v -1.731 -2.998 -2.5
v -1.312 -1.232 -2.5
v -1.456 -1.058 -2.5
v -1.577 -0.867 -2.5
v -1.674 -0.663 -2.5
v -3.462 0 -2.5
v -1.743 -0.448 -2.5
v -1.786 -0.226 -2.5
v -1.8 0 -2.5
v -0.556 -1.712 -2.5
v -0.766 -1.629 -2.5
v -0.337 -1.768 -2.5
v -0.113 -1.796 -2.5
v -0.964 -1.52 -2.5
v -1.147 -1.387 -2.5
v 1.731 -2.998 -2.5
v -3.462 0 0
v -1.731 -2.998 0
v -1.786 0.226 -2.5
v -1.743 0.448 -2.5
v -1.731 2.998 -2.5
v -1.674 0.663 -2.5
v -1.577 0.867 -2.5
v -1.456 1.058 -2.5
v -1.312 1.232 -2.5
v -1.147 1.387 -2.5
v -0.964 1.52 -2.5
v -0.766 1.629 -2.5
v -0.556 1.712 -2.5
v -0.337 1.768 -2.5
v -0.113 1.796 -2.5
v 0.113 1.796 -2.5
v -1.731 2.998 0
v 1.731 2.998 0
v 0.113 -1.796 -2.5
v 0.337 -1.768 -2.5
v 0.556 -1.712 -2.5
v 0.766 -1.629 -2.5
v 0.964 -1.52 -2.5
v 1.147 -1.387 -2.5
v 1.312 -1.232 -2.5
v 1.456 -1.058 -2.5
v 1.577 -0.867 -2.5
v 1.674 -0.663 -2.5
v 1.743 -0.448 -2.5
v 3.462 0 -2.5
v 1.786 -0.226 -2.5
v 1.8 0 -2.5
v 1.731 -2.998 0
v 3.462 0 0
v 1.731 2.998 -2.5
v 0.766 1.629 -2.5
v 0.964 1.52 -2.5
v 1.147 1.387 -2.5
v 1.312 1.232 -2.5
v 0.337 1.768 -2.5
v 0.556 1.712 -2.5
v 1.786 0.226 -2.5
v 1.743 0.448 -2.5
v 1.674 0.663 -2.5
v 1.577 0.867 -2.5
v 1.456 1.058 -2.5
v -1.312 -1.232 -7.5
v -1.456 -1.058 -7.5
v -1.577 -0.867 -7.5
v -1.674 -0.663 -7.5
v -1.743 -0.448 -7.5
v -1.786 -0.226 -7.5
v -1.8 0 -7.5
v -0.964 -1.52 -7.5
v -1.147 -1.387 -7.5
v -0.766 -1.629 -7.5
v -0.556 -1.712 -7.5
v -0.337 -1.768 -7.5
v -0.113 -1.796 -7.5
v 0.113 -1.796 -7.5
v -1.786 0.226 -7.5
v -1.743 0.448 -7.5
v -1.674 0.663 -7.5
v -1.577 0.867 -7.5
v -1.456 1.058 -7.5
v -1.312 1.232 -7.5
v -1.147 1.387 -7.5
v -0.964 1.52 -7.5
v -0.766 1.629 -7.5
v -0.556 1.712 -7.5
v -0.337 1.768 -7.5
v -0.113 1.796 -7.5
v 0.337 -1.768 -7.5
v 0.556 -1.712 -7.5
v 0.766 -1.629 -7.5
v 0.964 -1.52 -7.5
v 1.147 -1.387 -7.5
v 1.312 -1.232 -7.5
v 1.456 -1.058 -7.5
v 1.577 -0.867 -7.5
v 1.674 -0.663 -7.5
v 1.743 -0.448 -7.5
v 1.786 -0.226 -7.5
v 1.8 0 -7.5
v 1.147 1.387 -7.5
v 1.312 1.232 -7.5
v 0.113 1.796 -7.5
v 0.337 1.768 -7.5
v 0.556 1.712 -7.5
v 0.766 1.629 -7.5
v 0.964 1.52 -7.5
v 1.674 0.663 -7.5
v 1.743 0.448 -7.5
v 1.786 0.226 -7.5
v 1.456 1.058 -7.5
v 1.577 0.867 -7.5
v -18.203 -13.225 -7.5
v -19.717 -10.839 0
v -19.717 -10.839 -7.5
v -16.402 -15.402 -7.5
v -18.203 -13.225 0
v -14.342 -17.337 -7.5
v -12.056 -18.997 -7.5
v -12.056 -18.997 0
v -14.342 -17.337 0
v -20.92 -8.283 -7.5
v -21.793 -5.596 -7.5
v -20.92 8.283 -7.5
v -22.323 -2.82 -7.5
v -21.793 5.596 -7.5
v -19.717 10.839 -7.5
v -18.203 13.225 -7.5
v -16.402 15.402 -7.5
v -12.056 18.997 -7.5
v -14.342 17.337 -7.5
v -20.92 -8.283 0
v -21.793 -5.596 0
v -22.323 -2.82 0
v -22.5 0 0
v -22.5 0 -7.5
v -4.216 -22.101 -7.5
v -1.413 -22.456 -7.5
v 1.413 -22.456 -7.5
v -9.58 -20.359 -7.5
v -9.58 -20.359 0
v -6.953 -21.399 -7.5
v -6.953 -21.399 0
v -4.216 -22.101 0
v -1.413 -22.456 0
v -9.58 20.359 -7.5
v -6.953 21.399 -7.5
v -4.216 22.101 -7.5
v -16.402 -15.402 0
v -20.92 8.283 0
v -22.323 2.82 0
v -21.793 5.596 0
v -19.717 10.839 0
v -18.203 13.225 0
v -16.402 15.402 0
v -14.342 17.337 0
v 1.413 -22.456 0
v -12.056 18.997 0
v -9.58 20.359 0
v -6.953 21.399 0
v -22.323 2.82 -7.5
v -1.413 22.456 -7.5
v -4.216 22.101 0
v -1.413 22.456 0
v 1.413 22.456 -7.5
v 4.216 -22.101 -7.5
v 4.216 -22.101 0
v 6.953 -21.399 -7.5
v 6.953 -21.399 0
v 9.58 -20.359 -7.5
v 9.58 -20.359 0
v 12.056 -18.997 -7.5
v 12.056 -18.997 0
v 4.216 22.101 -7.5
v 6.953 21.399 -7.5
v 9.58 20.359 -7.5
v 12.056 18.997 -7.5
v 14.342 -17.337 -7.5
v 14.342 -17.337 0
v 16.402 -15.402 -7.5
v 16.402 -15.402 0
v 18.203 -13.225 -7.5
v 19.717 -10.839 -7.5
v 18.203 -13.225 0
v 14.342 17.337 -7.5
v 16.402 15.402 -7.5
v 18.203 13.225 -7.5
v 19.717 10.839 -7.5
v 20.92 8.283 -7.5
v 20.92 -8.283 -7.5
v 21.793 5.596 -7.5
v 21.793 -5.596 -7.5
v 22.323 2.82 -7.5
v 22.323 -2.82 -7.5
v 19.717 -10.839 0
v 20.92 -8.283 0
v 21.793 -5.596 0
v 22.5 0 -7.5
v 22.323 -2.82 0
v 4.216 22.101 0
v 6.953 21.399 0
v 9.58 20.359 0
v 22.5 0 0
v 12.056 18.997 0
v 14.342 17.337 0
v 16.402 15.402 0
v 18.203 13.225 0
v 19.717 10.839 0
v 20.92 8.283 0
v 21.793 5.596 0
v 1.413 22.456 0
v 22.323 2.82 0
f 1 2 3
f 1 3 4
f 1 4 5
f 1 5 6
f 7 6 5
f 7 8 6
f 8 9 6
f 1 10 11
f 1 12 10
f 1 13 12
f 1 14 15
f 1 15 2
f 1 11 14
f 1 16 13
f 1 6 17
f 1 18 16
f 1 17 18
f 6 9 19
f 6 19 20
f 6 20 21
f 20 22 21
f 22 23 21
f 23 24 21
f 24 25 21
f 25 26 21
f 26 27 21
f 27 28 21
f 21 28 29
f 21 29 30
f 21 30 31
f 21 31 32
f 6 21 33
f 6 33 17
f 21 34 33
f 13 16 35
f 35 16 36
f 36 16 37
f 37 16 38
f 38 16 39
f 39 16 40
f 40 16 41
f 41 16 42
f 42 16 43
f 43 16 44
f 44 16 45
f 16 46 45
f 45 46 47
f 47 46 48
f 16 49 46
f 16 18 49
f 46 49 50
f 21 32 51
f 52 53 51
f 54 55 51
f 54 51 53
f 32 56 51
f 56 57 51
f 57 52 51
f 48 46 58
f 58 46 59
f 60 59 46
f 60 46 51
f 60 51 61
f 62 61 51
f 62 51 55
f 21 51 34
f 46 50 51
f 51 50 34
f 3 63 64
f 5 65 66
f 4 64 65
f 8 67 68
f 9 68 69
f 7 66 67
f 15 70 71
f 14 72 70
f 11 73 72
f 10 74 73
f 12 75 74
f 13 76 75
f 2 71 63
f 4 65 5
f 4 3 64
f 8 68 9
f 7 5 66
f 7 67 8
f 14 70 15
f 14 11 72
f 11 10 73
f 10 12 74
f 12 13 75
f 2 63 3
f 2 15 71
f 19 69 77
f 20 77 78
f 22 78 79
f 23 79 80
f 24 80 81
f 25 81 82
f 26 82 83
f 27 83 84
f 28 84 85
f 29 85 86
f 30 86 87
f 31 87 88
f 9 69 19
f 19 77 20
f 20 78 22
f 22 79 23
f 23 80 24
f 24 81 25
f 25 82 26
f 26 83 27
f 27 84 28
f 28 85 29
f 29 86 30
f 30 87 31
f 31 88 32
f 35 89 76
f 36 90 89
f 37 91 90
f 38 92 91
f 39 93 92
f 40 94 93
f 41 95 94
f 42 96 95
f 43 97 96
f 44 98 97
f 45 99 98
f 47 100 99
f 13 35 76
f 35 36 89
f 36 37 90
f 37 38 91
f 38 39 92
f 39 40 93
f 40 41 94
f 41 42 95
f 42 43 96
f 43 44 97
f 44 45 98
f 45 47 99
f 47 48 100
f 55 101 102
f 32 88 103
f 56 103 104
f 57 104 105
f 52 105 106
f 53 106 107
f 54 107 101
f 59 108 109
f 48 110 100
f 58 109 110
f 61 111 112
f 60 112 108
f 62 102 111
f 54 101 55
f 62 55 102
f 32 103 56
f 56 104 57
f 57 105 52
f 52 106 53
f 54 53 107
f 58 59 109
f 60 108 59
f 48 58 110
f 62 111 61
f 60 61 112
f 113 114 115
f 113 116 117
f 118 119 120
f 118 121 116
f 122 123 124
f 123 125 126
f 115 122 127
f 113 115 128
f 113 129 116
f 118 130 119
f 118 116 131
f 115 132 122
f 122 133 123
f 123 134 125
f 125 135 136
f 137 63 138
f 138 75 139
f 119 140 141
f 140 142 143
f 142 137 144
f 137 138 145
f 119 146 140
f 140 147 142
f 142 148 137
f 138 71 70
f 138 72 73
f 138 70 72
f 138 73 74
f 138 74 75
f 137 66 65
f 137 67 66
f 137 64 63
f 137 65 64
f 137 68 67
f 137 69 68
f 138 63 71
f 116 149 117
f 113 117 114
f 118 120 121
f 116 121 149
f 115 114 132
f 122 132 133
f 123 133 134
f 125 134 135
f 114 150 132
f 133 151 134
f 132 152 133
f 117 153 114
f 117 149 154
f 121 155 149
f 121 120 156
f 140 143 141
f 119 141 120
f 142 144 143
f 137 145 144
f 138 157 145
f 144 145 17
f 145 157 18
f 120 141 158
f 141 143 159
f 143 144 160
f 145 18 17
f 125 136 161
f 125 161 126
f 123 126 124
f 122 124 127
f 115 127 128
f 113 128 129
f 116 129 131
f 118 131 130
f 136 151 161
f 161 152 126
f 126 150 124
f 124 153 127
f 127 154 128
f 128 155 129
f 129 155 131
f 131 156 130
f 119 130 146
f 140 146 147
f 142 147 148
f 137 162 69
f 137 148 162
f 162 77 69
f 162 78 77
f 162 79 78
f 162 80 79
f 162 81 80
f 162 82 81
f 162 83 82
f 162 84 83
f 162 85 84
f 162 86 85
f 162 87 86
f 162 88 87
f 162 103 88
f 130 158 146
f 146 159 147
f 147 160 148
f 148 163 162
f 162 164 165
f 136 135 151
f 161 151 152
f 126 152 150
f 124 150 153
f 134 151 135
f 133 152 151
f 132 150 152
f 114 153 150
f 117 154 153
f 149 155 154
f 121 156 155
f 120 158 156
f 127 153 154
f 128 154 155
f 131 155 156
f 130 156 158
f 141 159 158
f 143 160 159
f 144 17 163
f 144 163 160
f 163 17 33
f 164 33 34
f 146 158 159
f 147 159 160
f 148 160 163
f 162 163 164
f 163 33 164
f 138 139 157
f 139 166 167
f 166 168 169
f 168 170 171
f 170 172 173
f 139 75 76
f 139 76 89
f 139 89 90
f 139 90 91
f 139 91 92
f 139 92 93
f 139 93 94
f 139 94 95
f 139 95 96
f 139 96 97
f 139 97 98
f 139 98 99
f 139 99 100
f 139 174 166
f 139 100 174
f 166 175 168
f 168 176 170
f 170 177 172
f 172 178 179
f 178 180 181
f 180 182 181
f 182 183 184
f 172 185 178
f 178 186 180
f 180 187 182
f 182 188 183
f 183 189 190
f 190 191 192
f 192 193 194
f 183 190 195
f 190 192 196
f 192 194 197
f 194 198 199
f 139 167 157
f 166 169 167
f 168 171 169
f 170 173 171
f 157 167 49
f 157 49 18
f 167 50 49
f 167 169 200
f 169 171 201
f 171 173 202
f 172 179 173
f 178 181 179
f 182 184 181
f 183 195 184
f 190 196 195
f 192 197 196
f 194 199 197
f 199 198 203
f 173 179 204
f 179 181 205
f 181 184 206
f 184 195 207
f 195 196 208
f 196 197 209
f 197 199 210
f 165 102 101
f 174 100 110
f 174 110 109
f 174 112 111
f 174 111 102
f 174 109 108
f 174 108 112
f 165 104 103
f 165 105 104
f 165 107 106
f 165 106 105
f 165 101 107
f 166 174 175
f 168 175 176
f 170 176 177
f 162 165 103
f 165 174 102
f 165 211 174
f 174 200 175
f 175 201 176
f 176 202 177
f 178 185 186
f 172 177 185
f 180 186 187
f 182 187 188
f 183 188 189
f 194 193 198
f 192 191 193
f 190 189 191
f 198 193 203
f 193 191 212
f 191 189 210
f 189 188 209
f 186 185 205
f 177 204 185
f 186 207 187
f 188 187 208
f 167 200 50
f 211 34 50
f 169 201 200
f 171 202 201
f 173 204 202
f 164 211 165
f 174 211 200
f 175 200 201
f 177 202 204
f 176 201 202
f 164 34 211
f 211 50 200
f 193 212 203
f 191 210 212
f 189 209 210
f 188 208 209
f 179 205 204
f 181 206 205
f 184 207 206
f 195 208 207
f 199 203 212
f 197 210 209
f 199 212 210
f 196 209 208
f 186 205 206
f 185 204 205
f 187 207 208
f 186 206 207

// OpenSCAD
$fn = 50;

difference() {
	union() {
		translate(v = [0, 0, -7.5]) {
			cylinder(h = 7.5, r = 22.5);
		}
	}
	union() {
		translate(v = [0, 0, 0]) {
			rotate(a = [0, 0, 0]) {
				difference() {
					union() {
						translate(v = [0, 0, -2.5]) {
							linear_extrude(height = 2.5) {
								polygon(points = [[3.4619999999999997, 0.0], [1.7310000000000003, 2.9981799479017264], [-1.7309999999999992, 2.9981799479017264], [-3.4619999999999997, 4.2397272186481365e-16], [-1.7310000000000014, -2.998179947901726], [1.7309999999999977, -2.9981799479017277]]);
							}
						}
					}
					union();
				}
			}
		}
		#translate(v = [0, 0, -100.0]) {
			cylinder(h = 200, r = 1.8);
		}
	}
}
